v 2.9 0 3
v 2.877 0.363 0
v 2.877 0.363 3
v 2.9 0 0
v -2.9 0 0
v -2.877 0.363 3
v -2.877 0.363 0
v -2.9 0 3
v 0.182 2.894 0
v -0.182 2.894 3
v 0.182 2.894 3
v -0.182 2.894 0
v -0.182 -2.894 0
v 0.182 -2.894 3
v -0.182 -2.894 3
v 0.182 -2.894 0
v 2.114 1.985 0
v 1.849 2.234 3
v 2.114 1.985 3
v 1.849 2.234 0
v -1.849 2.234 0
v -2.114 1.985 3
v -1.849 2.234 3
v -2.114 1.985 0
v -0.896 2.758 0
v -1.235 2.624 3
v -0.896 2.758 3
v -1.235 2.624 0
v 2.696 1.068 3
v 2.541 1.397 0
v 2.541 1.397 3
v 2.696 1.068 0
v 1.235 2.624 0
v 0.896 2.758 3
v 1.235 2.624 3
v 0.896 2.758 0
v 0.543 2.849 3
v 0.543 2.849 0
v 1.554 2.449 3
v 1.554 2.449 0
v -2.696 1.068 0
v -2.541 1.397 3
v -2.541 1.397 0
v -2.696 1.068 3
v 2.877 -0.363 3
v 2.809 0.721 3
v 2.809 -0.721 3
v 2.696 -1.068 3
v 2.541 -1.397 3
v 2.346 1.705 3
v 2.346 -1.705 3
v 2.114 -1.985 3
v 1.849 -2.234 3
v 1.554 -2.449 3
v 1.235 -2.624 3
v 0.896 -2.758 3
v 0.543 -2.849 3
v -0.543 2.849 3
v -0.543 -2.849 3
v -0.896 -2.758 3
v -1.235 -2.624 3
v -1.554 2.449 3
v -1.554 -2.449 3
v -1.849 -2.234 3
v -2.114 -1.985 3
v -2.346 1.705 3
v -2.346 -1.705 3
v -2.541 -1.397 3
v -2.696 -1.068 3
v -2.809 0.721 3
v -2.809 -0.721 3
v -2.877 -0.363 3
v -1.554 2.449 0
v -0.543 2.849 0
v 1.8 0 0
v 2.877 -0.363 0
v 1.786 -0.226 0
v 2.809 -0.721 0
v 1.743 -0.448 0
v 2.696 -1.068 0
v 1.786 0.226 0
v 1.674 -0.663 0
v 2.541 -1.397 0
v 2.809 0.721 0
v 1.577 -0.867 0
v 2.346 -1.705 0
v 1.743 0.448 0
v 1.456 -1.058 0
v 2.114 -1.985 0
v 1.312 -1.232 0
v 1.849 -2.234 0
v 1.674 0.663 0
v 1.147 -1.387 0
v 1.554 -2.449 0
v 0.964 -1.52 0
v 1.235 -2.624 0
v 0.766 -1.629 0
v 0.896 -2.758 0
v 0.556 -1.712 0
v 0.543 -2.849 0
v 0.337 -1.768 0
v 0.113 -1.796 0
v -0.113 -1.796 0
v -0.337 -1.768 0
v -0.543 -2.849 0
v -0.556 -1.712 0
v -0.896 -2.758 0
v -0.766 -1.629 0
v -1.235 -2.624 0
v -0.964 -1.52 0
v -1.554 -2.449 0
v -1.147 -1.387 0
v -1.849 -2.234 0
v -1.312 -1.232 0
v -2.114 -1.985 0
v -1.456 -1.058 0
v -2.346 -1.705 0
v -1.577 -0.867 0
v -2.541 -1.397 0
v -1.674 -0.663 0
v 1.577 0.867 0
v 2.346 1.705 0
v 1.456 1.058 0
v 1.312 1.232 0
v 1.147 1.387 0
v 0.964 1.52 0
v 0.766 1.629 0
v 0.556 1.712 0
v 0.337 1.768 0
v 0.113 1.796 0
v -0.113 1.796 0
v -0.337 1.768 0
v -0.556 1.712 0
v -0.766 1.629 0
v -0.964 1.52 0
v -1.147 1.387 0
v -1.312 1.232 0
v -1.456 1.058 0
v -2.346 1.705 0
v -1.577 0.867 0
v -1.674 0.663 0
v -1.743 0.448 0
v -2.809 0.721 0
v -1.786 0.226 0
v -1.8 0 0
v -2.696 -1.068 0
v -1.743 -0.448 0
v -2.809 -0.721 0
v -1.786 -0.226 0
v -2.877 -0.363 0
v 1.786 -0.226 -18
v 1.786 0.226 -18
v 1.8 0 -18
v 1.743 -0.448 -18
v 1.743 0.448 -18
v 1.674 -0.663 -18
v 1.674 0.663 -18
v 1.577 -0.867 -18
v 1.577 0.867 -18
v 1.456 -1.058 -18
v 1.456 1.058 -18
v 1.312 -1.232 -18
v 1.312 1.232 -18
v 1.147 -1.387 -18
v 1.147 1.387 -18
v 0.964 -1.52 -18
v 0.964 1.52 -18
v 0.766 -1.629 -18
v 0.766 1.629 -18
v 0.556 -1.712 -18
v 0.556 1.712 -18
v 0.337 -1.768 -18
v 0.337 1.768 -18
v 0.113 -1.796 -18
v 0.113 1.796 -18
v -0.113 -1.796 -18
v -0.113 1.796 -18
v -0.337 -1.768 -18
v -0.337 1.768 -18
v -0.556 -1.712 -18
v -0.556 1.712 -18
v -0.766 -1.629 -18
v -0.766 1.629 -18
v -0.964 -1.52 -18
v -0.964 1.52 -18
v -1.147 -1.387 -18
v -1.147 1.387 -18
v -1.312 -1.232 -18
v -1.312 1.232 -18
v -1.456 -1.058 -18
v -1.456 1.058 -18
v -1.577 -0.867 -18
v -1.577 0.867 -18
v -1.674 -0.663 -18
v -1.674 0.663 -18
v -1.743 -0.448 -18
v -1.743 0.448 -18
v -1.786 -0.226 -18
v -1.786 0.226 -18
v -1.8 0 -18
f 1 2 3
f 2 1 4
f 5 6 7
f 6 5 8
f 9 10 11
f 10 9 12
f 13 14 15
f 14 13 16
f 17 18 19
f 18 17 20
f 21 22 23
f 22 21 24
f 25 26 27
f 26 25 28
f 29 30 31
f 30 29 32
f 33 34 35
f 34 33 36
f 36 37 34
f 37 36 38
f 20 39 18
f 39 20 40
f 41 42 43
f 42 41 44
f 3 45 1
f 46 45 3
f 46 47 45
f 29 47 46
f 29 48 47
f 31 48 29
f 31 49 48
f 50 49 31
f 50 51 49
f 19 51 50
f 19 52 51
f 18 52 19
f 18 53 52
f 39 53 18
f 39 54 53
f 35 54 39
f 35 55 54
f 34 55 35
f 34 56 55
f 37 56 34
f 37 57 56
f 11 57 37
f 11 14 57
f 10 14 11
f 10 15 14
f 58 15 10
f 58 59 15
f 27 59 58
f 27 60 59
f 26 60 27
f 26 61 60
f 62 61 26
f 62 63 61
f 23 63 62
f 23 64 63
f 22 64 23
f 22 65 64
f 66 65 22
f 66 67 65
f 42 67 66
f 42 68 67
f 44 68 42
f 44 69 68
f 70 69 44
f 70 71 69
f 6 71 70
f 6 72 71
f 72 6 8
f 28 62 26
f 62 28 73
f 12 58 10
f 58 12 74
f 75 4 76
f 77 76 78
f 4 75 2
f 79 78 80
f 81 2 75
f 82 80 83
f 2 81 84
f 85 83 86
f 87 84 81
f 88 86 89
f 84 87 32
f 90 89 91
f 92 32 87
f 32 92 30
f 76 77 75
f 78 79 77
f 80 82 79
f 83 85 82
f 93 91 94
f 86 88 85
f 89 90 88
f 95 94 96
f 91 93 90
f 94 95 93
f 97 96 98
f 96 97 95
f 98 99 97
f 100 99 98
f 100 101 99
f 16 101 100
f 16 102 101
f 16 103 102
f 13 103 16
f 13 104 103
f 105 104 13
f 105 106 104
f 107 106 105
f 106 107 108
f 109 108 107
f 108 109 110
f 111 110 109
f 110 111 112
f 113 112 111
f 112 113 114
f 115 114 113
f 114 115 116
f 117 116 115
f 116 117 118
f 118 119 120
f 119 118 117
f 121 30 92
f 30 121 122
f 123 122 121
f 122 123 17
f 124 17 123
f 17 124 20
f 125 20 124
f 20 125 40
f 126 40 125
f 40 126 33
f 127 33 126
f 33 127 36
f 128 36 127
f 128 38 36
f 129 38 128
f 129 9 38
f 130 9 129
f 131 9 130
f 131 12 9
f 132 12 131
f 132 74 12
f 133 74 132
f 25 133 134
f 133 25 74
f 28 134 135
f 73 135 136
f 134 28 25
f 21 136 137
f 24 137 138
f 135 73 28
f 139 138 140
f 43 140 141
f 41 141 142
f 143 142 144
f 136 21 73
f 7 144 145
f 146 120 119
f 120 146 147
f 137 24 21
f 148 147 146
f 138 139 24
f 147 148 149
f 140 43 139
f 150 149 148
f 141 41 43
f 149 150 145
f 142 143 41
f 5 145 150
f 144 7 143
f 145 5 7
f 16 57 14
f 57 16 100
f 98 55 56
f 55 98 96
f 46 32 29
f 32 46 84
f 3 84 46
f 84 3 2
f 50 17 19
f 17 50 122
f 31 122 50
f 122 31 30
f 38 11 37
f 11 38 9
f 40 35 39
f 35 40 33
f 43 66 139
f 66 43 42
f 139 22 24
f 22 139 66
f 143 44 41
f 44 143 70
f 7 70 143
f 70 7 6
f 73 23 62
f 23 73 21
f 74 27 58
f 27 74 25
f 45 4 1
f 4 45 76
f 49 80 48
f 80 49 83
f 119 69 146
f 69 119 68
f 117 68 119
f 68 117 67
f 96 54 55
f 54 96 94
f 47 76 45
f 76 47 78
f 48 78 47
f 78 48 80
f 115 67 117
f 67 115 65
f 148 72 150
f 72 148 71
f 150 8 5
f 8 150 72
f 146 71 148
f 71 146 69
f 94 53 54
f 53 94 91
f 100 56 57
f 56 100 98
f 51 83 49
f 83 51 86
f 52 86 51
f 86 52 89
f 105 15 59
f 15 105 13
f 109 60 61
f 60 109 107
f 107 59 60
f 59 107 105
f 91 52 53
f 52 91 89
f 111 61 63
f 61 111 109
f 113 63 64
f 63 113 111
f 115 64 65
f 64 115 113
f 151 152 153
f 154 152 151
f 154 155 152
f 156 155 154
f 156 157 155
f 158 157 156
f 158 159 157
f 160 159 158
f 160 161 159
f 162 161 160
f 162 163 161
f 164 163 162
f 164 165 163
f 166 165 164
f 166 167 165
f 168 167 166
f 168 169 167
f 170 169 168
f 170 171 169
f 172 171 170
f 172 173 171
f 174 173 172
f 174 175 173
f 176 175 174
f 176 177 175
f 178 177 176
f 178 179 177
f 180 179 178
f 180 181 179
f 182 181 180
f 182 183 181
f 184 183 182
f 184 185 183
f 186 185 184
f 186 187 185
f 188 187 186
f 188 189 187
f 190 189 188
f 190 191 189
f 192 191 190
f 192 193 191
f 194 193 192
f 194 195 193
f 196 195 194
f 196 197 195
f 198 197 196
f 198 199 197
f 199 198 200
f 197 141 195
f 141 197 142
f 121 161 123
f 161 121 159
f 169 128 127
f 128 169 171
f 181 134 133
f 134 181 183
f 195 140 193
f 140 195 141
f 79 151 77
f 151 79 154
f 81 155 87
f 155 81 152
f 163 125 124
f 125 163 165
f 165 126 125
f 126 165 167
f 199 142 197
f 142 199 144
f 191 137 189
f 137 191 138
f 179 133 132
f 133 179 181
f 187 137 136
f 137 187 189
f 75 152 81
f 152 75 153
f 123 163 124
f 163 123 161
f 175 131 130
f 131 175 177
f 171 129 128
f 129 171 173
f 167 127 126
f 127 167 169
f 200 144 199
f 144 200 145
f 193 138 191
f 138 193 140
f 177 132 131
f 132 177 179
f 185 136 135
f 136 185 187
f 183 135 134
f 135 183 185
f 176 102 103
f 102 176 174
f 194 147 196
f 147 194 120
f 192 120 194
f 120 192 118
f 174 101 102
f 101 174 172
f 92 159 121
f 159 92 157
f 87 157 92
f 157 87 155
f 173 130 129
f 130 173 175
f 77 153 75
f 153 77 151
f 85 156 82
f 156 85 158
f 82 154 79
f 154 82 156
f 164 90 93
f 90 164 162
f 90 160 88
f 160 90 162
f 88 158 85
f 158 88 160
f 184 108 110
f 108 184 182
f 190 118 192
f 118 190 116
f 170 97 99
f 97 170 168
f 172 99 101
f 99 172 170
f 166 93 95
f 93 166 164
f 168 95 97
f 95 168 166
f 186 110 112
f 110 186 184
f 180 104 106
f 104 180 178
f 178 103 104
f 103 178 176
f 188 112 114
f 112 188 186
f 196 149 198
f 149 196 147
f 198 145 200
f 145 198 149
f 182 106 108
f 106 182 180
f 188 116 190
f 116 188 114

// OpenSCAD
$fn = 50;


difference() {
	union() {
		translate(v = [0, 0, 0]) {
			rotate(a = [0, 0, 0]) {
				difference() {
					union() {
						cylinder(h = 3, r = 2.9000000000);
						translate(v = [0, 0, -18.0000000000]) {
							cylinder(h = 18, r = 1.5000000000);
						}
						translate(v = [0, 0, -18.0000000000]) {
							cylinder(h = 18, r = 1.8000000000);
						}
						translate(v = [0, 0, -18.0000000000]) {
							cylinder(h = 18, r = 1.5000000000);
						}
					}
					union();
				}
			}
		}
	}
	union();
}
